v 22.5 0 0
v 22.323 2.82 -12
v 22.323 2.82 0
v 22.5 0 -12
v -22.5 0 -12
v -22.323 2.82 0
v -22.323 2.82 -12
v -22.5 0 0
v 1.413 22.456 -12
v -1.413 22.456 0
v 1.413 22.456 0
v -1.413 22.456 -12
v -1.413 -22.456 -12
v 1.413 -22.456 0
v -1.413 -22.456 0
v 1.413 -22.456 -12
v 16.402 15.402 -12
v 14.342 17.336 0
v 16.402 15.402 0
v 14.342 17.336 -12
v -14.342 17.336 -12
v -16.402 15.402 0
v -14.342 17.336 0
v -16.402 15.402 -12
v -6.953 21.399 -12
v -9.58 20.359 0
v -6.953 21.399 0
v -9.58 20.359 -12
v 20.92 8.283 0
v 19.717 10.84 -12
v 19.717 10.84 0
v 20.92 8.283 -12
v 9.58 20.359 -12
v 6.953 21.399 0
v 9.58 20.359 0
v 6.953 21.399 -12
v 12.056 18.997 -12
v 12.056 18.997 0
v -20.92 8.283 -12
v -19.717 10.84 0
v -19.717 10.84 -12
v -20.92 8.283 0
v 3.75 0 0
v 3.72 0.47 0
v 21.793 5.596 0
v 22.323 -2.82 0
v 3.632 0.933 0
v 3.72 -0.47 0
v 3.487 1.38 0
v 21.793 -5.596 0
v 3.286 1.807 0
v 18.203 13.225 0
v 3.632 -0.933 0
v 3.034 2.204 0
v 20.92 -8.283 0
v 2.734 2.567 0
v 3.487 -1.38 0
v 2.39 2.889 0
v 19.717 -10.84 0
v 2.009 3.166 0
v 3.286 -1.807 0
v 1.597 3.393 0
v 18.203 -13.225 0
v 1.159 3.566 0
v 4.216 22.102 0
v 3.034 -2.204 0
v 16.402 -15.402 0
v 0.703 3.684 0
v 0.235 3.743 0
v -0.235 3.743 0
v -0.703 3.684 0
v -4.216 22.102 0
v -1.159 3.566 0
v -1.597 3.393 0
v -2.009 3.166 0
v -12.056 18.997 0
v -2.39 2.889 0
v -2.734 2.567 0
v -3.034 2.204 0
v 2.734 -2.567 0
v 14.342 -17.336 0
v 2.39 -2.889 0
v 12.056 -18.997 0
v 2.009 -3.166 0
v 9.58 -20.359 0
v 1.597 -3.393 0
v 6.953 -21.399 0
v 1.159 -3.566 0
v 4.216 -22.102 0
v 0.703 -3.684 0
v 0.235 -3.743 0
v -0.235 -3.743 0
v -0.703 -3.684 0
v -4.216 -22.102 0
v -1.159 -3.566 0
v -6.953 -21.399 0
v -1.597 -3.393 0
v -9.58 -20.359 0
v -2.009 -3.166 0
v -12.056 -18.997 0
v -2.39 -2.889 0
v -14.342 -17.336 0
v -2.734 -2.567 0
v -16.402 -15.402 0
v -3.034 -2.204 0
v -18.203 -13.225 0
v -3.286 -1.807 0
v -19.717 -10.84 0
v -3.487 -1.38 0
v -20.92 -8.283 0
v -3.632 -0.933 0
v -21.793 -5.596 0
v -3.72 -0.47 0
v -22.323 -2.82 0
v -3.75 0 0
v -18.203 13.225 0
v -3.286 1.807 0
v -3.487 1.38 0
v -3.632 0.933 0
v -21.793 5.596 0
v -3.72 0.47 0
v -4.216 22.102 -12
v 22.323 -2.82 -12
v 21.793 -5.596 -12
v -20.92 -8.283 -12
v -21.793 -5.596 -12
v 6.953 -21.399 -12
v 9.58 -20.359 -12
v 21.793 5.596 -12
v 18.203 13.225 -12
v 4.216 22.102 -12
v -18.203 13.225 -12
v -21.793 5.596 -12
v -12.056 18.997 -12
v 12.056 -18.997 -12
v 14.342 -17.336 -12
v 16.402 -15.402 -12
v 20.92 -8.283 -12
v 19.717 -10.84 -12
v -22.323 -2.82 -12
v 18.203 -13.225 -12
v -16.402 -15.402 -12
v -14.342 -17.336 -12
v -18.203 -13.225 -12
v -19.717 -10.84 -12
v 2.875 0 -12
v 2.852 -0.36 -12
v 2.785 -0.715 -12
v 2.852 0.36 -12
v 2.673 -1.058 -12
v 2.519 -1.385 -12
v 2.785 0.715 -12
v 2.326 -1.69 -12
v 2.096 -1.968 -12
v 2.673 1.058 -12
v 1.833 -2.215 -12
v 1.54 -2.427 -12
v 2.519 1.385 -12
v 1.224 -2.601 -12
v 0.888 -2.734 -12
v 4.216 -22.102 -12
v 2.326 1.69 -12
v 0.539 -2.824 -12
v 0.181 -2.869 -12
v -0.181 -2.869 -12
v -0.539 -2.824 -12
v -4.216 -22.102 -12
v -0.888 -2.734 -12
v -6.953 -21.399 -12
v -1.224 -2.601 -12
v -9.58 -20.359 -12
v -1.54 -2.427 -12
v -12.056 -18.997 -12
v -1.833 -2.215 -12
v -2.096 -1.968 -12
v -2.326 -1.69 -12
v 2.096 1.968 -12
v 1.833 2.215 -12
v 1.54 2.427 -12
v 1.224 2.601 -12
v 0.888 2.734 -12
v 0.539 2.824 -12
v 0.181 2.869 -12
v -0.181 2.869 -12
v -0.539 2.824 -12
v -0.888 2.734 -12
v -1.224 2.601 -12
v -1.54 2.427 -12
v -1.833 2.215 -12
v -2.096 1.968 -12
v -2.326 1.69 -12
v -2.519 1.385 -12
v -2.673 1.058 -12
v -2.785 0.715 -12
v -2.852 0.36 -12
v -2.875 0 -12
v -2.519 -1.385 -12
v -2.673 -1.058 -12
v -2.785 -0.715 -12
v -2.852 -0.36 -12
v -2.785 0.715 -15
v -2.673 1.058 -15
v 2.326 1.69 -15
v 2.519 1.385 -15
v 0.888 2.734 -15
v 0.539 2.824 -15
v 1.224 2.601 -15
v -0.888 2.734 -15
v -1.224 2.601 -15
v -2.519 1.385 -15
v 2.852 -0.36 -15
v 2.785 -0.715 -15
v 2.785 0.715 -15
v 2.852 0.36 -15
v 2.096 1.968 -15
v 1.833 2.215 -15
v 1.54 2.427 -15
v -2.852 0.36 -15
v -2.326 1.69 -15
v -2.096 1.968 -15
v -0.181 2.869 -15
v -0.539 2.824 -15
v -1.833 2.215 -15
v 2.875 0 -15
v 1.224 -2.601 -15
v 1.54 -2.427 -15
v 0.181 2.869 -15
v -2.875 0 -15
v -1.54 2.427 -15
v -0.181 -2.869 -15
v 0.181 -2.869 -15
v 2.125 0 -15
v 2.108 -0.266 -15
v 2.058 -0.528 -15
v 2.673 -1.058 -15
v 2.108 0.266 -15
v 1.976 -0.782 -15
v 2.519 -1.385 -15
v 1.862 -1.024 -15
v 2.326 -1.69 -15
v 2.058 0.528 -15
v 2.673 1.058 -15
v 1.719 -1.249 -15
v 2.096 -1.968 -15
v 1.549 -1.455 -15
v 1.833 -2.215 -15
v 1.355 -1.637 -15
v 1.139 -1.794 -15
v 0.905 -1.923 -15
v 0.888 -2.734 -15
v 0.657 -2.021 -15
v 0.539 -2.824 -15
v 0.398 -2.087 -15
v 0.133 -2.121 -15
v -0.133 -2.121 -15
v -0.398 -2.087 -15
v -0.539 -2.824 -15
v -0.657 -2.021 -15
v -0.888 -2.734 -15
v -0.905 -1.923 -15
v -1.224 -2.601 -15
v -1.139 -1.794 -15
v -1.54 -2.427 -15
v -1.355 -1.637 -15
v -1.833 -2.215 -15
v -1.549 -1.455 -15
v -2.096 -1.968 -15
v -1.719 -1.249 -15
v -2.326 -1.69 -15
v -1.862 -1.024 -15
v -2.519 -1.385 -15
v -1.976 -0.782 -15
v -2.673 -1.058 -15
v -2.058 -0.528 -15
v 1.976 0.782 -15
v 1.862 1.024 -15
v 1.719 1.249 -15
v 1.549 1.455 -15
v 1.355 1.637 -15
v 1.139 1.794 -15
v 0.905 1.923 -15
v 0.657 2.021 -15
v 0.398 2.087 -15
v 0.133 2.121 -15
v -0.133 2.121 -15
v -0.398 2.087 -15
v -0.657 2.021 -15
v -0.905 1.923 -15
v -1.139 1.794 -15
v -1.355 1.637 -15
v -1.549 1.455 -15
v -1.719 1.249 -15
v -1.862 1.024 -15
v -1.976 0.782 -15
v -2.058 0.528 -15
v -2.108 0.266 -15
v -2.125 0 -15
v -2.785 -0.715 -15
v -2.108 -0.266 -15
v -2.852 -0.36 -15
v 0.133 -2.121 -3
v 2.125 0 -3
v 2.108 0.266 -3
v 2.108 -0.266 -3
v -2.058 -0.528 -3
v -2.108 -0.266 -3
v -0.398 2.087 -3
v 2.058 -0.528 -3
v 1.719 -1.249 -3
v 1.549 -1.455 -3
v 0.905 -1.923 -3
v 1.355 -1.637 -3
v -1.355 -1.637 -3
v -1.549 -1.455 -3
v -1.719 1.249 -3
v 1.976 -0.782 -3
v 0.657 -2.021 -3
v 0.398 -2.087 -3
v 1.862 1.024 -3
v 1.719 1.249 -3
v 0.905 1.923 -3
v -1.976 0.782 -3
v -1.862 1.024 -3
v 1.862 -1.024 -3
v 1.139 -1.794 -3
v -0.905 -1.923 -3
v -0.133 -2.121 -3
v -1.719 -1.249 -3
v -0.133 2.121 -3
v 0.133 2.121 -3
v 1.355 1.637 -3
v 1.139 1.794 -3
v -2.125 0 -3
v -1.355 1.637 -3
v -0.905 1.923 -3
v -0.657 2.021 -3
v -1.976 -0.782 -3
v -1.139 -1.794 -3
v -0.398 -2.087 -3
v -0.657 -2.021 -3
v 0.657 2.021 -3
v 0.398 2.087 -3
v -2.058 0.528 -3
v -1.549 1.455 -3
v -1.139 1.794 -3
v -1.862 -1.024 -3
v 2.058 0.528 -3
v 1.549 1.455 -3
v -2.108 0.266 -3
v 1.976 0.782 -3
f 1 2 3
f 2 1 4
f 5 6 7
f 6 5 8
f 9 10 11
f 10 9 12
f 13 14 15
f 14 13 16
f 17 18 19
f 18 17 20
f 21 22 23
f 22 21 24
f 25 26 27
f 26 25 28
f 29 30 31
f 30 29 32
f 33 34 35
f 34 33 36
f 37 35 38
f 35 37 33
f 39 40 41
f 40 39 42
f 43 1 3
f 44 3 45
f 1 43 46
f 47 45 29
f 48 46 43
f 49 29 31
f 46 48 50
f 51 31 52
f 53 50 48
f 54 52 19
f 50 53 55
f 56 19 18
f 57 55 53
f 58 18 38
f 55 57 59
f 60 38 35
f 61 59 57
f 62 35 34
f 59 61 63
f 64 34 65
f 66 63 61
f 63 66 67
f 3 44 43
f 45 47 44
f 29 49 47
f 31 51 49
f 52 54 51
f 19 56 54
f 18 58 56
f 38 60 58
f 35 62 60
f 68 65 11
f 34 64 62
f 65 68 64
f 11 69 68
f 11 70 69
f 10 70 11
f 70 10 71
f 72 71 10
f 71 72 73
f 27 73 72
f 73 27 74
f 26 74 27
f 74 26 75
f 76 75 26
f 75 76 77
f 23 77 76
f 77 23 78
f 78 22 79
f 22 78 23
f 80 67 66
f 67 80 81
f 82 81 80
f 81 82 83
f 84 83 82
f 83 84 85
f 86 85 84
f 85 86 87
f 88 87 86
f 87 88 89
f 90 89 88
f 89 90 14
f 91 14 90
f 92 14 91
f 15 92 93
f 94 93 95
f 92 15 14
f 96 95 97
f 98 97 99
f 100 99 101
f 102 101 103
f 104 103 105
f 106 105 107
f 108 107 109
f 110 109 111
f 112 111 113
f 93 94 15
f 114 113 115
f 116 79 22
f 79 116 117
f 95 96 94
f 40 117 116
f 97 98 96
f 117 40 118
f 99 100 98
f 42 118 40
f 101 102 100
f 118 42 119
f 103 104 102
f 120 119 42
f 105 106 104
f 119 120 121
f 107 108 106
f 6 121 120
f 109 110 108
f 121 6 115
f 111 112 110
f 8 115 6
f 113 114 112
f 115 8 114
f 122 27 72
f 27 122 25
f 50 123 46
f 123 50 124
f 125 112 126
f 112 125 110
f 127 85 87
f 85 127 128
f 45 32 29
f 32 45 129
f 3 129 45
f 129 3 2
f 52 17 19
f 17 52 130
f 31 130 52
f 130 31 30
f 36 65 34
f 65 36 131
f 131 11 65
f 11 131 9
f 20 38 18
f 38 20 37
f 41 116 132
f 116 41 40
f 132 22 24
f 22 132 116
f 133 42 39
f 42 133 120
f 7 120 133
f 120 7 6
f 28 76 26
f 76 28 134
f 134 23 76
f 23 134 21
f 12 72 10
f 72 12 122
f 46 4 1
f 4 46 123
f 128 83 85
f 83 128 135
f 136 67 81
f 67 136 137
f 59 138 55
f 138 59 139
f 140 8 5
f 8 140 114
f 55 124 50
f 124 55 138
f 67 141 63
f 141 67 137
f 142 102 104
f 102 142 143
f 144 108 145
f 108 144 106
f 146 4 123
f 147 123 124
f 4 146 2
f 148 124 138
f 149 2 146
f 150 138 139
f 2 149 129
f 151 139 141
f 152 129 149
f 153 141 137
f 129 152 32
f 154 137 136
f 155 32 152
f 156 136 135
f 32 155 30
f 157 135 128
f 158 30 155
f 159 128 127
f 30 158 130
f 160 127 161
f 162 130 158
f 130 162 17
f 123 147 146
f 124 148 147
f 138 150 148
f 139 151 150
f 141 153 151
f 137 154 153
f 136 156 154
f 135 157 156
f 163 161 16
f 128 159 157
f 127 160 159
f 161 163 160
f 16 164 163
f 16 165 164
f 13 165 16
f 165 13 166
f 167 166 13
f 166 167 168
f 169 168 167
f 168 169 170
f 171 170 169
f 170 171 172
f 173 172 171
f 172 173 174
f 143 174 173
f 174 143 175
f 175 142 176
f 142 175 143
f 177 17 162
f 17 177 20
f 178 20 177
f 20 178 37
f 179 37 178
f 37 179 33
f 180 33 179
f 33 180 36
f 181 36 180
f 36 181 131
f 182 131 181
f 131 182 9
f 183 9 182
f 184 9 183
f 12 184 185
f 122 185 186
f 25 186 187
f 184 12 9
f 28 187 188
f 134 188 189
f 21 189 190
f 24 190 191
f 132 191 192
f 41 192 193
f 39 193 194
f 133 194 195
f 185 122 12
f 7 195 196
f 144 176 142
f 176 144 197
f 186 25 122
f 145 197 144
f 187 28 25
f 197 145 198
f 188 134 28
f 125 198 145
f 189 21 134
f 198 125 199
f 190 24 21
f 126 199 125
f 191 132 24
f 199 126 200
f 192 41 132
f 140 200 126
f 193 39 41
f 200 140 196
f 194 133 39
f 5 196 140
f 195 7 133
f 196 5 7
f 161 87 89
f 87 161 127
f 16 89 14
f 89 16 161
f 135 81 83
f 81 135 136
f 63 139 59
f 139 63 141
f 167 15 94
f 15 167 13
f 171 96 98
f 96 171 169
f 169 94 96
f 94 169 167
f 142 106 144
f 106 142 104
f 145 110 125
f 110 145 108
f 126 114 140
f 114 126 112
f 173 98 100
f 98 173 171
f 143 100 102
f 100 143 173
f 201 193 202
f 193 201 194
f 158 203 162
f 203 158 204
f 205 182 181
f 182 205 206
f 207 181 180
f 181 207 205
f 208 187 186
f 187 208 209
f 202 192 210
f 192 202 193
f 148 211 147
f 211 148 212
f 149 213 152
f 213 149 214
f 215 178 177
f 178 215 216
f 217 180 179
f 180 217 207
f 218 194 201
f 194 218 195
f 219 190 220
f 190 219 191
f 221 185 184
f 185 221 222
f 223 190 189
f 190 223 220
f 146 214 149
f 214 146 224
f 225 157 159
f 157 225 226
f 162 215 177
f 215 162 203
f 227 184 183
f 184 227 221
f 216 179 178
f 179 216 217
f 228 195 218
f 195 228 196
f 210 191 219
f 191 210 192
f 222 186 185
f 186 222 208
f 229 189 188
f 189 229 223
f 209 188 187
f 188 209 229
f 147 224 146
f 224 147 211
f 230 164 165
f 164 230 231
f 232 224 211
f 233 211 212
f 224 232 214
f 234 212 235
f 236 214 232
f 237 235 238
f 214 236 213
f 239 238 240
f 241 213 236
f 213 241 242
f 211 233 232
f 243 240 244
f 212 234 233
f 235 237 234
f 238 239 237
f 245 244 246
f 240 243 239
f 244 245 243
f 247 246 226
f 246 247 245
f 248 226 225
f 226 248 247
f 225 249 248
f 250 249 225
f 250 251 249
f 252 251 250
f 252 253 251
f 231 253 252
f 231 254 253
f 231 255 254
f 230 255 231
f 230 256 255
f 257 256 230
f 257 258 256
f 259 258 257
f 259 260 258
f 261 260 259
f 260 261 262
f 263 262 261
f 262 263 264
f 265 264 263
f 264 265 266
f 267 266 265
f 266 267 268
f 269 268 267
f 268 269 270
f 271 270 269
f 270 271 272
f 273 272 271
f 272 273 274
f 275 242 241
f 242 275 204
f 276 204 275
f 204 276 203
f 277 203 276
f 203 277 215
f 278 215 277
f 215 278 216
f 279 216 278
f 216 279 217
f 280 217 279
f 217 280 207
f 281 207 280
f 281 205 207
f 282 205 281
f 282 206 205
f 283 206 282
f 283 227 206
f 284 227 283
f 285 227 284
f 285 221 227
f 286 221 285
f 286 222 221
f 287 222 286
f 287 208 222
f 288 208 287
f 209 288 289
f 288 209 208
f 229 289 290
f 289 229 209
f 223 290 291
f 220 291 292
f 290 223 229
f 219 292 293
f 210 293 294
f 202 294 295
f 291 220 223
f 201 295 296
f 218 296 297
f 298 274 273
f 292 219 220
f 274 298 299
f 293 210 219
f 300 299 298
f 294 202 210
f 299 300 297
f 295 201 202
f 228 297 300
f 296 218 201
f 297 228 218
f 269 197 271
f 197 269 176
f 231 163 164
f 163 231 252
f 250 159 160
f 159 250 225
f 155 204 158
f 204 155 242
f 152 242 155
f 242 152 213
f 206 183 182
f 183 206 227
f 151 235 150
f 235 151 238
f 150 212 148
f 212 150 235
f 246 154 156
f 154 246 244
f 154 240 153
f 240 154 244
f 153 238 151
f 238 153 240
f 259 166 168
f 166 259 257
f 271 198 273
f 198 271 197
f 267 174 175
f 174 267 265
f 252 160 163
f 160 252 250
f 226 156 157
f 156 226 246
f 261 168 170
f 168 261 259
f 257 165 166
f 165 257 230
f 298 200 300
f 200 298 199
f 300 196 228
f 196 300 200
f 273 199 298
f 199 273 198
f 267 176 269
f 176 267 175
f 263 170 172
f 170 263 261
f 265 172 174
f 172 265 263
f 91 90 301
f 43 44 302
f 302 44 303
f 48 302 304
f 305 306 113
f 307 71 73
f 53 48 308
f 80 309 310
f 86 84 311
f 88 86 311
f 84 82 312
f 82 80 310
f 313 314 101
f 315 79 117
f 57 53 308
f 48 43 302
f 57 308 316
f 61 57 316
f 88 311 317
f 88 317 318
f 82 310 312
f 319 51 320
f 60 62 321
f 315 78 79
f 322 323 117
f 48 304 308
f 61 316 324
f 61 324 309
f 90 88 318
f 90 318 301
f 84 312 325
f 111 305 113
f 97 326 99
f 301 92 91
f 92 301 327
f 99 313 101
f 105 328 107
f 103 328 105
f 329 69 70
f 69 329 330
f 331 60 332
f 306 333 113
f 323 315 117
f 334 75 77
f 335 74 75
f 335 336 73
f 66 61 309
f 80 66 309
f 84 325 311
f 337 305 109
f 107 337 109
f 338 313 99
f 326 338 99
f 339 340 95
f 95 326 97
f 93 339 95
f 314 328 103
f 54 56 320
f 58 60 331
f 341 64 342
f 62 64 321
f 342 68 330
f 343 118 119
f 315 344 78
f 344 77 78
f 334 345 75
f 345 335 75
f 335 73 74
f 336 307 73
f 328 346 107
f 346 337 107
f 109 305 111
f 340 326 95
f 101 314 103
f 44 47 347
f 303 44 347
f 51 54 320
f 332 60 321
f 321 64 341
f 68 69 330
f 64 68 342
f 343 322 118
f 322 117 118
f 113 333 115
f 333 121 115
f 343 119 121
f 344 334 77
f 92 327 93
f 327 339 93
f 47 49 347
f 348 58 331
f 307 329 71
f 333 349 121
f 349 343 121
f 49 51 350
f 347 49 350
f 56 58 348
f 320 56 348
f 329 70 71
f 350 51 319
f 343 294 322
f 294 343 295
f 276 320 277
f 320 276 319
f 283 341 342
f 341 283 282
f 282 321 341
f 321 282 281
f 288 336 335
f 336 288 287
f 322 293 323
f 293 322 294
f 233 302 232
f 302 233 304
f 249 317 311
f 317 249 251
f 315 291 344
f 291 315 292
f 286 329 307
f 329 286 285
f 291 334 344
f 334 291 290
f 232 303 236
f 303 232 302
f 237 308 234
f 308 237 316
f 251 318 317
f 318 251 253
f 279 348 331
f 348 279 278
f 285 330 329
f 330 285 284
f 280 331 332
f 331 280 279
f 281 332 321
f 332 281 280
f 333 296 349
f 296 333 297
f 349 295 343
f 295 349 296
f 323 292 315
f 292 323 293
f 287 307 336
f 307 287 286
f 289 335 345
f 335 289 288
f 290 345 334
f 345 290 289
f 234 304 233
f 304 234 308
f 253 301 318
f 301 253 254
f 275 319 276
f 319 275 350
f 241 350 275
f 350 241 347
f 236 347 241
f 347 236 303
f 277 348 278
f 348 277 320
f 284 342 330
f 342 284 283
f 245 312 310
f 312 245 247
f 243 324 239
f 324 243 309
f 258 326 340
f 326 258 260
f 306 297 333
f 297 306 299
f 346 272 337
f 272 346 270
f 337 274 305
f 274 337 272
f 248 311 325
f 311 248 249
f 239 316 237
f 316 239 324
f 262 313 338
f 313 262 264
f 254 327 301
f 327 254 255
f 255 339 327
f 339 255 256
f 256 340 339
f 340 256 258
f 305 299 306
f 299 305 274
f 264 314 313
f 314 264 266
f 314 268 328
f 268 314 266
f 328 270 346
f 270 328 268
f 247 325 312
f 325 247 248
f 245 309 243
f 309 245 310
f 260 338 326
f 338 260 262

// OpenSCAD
$fn = 50;


difference() {
	union() {
		translate(v = [0, 0, -12.0000000000]) {
			cylinder(h = 12, r = 22.5000000000);
		}
		translate(v = [0, 0, -15.0000000000]) {
			cylinder(h = 15, r = 2.8750000000);
		}
	}
	union() {
		translate(v = [0, 0, 0]) {
			rotate(a = [0, 0, 0]) {
				difference() {
					union() {
						translate(v = [0, 0, -15.0000000000]) {
							cylinder(h = 15, r = 2.0000000000);
						}
						translate(v = [0, 0, -3]) {
							cylinder(h = 3, r1 = 2.1250000000, r2 = 3.7500000000);
						}
						translate(v = [0, 0, -15.0000000000]) {
							cylinder(h = 15, r = 2.1250000000);
						}
						translate(v = [0, 0, -15.0000000000]) {
							cylinder(h = 15, r = 2.0000000000);
						}
					}
					union();
				}
			}
		}
	}
}
